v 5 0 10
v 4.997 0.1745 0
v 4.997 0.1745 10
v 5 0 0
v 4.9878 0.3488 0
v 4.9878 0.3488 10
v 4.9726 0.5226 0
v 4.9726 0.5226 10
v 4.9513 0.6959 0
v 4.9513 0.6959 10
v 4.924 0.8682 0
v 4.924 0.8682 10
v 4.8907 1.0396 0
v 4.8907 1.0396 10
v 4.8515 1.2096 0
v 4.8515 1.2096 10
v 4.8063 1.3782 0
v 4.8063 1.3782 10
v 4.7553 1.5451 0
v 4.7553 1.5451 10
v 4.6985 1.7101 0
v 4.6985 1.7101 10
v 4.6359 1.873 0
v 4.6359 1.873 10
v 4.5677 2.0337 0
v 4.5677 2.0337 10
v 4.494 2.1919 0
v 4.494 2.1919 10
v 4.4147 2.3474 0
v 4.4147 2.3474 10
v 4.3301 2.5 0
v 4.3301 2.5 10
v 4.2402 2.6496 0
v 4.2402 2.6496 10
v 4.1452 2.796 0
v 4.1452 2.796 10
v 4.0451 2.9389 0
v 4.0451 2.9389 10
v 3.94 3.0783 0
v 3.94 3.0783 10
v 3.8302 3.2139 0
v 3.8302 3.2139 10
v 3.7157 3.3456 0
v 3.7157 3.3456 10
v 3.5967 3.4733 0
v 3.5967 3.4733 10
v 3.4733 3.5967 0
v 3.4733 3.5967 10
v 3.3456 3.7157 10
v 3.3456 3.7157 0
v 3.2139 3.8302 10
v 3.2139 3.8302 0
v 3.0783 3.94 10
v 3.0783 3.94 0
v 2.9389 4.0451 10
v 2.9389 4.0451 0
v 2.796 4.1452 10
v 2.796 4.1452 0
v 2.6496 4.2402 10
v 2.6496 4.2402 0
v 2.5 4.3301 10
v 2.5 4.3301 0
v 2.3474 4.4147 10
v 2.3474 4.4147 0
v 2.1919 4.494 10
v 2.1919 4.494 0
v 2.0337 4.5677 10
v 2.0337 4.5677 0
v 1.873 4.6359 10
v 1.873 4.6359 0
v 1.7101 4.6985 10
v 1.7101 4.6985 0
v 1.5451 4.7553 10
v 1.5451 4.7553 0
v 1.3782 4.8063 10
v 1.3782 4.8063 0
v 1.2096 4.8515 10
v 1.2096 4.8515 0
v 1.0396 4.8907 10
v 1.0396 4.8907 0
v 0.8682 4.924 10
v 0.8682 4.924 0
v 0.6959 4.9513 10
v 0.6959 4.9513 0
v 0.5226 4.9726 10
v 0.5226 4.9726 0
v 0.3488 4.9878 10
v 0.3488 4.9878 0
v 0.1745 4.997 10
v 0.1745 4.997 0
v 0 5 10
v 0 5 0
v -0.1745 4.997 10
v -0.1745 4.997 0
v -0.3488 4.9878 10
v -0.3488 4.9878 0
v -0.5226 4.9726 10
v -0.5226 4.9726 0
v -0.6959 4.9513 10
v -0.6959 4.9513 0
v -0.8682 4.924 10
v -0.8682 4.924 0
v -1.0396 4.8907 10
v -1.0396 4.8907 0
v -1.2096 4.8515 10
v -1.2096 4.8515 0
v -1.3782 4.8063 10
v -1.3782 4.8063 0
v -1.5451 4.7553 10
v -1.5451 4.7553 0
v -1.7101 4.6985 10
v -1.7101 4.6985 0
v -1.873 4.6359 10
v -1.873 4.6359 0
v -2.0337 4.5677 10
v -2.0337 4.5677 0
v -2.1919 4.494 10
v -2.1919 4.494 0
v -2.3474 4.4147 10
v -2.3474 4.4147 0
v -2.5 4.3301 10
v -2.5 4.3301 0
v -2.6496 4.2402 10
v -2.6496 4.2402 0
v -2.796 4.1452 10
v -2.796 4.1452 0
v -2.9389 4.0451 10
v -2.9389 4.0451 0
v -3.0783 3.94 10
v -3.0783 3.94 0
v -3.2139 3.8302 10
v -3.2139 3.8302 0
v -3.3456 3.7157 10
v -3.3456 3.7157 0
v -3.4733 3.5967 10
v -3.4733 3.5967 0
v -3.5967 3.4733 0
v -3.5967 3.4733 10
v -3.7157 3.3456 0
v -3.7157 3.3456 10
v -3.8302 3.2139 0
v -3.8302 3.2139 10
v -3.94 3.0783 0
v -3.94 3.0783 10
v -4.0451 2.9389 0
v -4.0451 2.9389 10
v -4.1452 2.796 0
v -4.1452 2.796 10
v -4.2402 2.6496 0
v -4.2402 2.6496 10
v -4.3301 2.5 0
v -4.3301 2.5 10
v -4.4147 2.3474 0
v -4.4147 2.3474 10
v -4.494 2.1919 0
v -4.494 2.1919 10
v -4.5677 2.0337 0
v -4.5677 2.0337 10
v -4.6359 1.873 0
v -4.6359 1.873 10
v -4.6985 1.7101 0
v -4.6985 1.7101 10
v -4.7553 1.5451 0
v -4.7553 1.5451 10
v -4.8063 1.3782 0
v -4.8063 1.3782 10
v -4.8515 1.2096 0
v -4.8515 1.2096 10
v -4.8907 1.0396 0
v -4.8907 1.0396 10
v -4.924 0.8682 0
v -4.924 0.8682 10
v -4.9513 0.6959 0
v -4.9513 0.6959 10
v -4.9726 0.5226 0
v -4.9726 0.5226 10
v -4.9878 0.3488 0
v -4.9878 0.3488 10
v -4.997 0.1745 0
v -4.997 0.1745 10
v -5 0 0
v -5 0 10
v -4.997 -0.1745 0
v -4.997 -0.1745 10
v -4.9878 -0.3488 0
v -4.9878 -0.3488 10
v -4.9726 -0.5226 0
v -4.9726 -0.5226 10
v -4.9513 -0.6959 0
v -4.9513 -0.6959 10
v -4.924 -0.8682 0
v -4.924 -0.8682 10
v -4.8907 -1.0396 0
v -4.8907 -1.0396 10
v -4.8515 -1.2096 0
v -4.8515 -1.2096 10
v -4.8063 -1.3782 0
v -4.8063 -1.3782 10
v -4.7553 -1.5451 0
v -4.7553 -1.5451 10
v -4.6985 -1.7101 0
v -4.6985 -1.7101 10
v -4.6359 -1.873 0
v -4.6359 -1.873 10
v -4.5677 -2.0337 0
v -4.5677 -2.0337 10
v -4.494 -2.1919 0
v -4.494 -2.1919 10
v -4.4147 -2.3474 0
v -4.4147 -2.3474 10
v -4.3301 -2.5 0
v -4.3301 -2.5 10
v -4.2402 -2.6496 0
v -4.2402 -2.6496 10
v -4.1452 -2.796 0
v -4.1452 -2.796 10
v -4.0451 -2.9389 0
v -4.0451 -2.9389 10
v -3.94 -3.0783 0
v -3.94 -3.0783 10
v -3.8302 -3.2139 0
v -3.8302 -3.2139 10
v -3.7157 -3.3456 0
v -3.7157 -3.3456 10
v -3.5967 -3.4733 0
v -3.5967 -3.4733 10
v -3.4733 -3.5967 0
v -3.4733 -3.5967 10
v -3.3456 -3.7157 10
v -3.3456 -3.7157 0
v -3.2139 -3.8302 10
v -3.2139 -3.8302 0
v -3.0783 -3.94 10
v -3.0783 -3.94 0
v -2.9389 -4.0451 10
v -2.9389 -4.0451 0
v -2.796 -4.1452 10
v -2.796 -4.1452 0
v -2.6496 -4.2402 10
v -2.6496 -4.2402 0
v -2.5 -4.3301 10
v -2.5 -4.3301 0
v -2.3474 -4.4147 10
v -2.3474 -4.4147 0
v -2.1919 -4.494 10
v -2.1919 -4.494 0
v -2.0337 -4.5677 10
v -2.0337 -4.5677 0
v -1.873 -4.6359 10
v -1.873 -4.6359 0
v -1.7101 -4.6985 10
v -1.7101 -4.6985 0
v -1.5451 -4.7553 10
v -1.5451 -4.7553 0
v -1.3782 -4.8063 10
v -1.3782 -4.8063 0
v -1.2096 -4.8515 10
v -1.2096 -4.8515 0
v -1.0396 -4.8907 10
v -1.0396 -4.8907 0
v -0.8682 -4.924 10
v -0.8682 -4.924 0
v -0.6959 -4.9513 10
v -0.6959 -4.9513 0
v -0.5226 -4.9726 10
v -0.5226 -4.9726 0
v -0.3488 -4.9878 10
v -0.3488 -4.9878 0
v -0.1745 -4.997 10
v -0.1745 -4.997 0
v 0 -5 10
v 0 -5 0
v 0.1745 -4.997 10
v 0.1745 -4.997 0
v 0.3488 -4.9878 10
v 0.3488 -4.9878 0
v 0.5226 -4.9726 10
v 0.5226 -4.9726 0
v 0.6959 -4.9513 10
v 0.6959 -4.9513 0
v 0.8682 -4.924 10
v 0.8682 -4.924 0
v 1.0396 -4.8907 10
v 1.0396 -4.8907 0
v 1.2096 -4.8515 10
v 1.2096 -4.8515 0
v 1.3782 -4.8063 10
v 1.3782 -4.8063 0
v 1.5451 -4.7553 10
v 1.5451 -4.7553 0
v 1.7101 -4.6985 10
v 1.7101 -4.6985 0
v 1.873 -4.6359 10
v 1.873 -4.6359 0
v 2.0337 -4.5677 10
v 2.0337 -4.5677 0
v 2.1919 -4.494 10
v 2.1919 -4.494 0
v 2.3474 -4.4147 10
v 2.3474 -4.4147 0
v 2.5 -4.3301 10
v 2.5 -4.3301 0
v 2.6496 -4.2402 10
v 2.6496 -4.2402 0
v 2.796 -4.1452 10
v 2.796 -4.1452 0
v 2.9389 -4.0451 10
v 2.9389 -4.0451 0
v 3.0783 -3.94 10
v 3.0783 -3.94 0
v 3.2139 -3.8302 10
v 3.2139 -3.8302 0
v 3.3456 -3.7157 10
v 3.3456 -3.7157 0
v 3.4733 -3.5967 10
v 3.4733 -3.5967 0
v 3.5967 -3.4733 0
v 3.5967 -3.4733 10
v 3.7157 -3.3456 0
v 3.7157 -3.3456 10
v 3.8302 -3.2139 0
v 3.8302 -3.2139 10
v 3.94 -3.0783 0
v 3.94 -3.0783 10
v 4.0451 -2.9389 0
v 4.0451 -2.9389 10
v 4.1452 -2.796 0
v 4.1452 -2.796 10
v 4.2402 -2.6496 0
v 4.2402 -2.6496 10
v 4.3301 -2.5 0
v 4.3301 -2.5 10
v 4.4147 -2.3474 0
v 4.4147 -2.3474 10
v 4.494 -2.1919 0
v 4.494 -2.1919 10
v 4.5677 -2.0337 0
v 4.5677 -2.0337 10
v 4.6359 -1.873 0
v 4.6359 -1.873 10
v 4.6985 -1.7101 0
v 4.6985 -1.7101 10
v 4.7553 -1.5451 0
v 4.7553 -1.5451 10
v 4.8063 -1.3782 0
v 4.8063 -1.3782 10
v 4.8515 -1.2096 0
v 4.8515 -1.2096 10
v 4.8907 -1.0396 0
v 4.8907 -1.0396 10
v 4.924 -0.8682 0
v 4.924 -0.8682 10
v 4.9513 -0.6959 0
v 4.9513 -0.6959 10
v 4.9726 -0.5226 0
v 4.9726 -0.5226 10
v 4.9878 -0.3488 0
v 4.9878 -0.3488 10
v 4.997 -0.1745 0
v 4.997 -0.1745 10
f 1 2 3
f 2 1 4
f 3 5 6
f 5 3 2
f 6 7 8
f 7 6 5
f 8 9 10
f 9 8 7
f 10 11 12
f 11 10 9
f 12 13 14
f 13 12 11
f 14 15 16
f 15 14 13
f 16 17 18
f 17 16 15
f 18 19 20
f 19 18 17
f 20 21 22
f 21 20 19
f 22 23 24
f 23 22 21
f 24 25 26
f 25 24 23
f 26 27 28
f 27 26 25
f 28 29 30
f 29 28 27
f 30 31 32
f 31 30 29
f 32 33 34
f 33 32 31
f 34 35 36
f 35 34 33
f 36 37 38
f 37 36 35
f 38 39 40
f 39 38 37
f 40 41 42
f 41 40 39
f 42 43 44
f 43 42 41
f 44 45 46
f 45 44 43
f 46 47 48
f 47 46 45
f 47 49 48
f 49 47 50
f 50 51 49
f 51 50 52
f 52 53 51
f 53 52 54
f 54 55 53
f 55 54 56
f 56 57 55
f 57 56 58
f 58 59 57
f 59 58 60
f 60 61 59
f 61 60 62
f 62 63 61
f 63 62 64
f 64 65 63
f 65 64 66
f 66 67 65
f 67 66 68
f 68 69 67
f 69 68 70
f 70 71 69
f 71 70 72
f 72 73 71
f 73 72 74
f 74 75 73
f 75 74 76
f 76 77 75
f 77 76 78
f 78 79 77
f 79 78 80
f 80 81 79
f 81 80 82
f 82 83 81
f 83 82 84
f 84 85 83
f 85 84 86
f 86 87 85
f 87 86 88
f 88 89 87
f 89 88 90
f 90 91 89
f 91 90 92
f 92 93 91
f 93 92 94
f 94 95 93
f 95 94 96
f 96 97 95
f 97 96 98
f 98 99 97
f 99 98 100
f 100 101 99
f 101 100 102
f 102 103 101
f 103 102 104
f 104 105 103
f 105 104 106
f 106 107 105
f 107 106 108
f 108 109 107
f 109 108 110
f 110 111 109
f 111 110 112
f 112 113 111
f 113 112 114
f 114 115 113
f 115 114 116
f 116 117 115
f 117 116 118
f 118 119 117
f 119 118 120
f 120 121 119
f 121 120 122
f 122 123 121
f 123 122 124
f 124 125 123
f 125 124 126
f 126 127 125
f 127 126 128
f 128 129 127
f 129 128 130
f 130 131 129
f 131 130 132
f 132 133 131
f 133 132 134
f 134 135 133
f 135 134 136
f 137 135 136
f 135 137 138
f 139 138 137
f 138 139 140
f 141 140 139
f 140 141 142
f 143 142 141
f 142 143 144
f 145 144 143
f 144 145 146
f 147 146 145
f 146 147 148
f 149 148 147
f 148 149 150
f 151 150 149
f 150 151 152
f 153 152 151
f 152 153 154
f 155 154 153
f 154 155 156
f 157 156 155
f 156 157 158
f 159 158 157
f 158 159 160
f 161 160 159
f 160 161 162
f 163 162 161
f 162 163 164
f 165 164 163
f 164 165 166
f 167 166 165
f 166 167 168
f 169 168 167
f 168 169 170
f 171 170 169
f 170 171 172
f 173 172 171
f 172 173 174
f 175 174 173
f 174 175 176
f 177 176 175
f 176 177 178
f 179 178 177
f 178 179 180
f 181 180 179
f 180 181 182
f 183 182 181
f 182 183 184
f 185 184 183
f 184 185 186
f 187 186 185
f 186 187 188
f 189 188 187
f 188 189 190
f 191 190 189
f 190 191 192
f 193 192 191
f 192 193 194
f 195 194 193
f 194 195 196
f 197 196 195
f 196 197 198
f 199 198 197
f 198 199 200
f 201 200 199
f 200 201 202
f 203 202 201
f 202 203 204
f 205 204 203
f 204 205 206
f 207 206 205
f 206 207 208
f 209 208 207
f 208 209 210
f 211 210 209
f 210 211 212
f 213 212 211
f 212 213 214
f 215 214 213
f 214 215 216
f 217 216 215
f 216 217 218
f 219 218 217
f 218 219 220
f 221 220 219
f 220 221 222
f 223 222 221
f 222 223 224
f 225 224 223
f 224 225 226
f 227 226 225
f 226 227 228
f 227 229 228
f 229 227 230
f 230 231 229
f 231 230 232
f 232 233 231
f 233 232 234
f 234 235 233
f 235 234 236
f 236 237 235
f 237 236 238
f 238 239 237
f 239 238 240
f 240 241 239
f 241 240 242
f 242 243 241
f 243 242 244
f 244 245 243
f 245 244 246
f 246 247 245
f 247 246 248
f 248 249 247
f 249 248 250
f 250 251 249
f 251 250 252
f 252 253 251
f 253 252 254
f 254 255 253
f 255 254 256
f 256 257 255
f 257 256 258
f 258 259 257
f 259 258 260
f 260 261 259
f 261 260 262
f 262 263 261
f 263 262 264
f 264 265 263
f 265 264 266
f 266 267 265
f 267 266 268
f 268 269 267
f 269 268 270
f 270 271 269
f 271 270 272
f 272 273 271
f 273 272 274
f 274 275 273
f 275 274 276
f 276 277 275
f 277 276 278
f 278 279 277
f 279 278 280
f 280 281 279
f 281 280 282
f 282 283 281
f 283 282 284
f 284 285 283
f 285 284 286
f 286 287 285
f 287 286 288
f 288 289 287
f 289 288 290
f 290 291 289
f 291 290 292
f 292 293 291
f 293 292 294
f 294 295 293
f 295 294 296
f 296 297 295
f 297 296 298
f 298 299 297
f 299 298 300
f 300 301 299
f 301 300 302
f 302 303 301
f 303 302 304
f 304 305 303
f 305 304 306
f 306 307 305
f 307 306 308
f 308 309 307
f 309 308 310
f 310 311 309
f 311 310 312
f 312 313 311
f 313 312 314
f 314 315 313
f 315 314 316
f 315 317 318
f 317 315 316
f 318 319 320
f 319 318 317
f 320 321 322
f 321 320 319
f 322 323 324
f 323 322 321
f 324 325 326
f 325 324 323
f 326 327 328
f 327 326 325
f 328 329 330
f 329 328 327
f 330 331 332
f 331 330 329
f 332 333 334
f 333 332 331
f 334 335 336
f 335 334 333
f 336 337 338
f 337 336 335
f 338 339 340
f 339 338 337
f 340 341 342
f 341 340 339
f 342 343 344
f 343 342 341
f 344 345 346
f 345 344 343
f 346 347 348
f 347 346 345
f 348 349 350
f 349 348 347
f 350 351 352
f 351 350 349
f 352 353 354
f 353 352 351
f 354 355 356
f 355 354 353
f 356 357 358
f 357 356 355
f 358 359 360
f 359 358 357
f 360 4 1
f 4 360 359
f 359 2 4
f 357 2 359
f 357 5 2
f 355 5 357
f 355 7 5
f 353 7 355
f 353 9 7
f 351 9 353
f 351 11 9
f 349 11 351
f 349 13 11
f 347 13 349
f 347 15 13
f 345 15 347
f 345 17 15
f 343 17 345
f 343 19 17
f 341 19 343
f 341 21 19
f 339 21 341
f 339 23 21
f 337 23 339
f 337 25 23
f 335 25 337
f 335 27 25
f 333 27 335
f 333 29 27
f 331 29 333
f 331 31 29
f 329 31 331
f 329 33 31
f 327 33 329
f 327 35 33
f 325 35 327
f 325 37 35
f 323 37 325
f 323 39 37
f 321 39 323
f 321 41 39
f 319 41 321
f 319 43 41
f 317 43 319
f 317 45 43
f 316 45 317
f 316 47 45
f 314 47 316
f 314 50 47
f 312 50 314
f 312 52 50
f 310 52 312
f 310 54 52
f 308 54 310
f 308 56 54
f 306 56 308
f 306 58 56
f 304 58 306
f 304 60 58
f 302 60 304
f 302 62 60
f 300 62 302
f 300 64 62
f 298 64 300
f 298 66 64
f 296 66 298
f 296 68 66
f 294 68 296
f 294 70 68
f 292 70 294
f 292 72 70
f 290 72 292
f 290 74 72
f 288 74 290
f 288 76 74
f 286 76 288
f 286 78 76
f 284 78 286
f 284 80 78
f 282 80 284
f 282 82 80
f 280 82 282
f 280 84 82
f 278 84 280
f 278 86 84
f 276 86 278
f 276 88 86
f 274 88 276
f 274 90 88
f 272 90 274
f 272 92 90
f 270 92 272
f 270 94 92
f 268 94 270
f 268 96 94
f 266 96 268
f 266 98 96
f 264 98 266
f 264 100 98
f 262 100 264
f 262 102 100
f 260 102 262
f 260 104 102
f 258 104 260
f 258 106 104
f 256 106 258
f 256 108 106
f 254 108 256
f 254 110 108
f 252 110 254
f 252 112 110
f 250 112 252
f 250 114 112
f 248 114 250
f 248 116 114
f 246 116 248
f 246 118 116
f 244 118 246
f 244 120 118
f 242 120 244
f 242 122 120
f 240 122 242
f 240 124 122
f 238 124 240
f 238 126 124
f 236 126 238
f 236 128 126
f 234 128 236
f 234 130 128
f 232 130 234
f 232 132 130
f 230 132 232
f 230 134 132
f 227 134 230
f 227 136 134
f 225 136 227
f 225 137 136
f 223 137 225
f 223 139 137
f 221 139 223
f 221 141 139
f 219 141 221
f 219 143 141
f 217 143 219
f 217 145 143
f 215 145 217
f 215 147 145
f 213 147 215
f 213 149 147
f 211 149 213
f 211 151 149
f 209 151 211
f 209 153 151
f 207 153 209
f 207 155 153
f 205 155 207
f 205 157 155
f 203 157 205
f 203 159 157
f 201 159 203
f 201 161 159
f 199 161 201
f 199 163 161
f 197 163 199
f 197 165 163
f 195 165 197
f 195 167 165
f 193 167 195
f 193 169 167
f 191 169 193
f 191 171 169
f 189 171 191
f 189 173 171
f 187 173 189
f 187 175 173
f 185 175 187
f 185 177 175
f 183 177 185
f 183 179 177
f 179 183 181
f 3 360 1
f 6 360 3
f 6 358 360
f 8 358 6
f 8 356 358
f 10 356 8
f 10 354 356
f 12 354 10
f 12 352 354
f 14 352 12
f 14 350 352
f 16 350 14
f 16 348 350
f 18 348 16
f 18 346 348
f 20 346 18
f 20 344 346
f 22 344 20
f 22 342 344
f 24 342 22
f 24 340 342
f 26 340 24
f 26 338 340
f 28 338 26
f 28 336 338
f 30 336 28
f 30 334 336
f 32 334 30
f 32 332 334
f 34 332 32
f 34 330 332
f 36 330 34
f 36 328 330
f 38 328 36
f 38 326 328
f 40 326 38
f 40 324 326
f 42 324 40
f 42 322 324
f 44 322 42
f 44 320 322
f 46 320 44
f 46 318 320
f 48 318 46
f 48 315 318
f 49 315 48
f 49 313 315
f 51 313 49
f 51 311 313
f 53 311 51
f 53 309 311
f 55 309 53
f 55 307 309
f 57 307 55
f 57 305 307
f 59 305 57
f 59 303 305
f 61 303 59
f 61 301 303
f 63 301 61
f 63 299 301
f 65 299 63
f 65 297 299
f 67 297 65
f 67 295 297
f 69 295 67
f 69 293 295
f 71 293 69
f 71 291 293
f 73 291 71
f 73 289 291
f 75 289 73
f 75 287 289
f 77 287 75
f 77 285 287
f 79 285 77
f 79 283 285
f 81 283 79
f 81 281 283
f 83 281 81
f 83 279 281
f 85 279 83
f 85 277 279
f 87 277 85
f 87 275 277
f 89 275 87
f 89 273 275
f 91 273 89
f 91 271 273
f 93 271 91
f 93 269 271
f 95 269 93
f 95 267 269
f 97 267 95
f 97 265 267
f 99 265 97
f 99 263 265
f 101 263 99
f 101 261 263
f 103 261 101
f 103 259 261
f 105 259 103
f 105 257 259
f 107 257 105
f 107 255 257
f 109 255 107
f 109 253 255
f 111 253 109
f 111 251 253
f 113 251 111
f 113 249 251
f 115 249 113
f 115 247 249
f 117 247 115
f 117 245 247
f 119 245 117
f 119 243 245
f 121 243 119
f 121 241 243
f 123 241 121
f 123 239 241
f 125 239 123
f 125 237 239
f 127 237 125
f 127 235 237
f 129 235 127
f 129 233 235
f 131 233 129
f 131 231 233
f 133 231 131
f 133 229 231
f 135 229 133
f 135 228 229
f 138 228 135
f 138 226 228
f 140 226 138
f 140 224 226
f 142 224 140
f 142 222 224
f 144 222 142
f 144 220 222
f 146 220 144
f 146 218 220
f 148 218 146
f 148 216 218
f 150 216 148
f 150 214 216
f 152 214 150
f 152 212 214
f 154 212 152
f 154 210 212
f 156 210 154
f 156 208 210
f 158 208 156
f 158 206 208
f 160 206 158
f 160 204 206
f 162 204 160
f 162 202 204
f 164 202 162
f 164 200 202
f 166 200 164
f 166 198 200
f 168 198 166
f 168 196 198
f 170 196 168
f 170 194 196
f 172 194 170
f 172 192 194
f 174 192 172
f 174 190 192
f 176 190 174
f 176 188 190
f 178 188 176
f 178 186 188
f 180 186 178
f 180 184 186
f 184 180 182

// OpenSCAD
// Generated by SolidPython 1.1.3 on 2023-05-28 11:20:15


cylinder($fn = 180, h = 10, r = 5);
/***********************************************
*********      SolidPython code:      **********
************************************************
 
import pathlib
import subprocess
import sys

from solid import OpenSCADObject, scad_render_to_file


def save_openscad(o: OpenSCADObject):
    file_path = sys.argv[0].replace('.py', '.scad')
    scad_render_to_file(o, file_path)
    return file_path


def file_name_or_object_to_file_name(file_name_or_object: OpenSCADObject | str | pathlib.Path):
    if isinstance(file_name_or_object, OpenSCADObject):
        return save_openscad(file_name_or_object)
    elif isinstance(file_name_or_object, pathlib.Path):
        return file_name_or_object.as_posix()
    else:
        return file_name_or_object


def open_openscad(file_name_or_object: OpenSCADObject | str | pathlib.Path):
    file_name = file_name_or_object_to_file_name(file_name_or_object)
    process = subprocess.Popen(['open', '-a', 'OpenSCAD', file_name])
    process.wait()


def convert_to_stl(file_name_or_object: OpenSCADObject| str | pathlib.Path, *, preview: bool = False):
    file_name = file_name_or_object_to_file_name(file_name_or_object)

    stl_file_name = file_name.replace('.scad', '.stl')
    command = [
        'open', '-a', 'OpenSCAD', '--hardwarnings', '-o', stl_file_name,
        file_name]
    print(' '.join(command))
    process = subprocess.Popen(command)
    process.wait()
    if preview:
        subprocess.Popen(['open', '-a', 'Preview', stl_file_name])
 
 
************************************************/
